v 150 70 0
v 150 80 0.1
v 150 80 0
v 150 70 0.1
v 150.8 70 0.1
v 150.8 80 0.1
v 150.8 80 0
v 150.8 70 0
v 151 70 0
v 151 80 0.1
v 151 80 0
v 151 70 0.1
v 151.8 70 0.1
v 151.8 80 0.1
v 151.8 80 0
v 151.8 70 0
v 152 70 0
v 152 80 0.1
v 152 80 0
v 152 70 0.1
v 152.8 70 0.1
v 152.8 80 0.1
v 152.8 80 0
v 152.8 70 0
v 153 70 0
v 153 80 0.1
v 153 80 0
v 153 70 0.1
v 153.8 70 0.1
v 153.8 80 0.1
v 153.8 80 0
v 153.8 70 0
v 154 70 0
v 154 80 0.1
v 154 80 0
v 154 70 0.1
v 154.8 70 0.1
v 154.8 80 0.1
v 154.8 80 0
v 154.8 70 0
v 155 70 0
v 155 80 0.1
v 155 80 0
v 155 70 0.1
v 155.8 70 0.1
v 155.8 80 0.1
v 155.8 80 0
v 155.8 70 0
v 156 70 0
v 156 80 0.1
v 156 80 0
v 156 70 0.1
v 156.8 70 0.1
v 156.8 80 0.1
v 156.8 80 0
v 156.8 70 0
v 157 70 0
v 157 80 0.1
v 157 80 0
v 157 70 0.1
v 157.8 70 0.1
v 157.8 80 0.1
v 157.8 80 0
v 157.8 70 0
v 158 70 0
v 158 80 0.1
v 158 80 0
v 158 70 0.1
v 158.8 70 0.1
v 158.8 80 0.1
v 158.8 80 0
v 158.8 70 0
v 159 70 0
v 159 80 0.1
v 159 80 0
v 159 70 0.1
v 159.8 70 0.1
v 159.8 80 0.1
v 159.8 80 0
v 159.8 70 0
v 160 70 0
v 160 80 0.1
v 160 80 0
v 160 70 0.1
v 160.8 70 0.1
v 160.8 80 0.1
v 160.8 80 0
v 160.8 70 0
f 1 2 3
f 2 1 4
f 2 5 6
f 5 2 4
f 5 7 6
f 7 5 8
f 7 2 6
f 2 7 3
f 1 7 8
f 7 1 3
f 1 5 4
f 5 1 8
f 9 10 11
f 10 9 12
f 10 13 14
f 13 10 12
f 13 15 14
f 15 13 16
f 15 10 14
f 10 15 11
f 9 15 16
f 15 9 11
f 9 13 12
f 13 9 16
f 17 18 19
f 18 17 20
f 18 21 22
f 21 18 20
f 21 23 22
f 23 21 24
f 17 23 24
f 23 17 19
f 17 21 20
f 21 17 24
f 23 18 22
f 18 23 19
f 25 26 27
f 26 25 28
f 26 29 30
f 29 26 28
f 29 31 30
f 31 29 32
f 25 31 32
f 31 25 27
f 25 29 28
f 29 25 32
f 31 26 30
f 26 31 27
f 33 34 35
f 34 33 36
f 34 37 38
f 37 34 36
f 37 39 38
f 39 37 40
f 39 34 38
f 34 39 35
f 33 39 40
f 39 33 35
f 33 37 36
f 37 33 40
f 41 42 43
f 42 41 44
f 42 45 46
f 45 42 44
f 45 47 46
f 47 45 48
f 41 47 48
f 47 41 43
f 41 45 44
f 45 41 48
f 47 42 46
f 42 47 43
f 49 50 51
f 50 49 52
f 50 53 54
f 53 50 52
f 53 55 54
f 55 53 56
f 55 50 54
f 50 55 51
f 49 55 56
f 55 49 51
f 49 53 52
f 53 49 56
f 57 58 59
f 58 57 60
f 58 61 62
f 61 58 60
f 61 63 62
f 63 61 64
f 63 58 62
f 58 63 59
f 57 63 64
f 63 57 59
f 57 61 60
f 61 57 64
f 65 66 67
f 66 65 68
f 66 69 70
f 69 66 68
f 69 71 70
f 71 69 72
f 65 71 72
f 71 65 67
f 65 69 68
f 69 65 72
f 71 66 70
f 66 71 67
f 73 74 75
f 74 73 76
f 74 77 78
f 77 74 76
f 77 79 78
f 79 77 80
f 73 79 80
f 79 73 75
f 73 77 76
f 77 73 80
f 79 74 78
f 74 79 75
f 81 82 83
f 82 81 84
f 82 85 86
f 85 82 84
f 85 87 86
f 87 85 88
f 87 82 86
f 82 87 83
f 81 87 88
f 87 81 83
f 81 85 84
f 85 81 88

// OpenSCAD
translate([10+140,10+60,0])
        for (i = [0 : 10]){
            translate([i,0,0])
                cube(size = [0.8,10,0.1]);
    }
